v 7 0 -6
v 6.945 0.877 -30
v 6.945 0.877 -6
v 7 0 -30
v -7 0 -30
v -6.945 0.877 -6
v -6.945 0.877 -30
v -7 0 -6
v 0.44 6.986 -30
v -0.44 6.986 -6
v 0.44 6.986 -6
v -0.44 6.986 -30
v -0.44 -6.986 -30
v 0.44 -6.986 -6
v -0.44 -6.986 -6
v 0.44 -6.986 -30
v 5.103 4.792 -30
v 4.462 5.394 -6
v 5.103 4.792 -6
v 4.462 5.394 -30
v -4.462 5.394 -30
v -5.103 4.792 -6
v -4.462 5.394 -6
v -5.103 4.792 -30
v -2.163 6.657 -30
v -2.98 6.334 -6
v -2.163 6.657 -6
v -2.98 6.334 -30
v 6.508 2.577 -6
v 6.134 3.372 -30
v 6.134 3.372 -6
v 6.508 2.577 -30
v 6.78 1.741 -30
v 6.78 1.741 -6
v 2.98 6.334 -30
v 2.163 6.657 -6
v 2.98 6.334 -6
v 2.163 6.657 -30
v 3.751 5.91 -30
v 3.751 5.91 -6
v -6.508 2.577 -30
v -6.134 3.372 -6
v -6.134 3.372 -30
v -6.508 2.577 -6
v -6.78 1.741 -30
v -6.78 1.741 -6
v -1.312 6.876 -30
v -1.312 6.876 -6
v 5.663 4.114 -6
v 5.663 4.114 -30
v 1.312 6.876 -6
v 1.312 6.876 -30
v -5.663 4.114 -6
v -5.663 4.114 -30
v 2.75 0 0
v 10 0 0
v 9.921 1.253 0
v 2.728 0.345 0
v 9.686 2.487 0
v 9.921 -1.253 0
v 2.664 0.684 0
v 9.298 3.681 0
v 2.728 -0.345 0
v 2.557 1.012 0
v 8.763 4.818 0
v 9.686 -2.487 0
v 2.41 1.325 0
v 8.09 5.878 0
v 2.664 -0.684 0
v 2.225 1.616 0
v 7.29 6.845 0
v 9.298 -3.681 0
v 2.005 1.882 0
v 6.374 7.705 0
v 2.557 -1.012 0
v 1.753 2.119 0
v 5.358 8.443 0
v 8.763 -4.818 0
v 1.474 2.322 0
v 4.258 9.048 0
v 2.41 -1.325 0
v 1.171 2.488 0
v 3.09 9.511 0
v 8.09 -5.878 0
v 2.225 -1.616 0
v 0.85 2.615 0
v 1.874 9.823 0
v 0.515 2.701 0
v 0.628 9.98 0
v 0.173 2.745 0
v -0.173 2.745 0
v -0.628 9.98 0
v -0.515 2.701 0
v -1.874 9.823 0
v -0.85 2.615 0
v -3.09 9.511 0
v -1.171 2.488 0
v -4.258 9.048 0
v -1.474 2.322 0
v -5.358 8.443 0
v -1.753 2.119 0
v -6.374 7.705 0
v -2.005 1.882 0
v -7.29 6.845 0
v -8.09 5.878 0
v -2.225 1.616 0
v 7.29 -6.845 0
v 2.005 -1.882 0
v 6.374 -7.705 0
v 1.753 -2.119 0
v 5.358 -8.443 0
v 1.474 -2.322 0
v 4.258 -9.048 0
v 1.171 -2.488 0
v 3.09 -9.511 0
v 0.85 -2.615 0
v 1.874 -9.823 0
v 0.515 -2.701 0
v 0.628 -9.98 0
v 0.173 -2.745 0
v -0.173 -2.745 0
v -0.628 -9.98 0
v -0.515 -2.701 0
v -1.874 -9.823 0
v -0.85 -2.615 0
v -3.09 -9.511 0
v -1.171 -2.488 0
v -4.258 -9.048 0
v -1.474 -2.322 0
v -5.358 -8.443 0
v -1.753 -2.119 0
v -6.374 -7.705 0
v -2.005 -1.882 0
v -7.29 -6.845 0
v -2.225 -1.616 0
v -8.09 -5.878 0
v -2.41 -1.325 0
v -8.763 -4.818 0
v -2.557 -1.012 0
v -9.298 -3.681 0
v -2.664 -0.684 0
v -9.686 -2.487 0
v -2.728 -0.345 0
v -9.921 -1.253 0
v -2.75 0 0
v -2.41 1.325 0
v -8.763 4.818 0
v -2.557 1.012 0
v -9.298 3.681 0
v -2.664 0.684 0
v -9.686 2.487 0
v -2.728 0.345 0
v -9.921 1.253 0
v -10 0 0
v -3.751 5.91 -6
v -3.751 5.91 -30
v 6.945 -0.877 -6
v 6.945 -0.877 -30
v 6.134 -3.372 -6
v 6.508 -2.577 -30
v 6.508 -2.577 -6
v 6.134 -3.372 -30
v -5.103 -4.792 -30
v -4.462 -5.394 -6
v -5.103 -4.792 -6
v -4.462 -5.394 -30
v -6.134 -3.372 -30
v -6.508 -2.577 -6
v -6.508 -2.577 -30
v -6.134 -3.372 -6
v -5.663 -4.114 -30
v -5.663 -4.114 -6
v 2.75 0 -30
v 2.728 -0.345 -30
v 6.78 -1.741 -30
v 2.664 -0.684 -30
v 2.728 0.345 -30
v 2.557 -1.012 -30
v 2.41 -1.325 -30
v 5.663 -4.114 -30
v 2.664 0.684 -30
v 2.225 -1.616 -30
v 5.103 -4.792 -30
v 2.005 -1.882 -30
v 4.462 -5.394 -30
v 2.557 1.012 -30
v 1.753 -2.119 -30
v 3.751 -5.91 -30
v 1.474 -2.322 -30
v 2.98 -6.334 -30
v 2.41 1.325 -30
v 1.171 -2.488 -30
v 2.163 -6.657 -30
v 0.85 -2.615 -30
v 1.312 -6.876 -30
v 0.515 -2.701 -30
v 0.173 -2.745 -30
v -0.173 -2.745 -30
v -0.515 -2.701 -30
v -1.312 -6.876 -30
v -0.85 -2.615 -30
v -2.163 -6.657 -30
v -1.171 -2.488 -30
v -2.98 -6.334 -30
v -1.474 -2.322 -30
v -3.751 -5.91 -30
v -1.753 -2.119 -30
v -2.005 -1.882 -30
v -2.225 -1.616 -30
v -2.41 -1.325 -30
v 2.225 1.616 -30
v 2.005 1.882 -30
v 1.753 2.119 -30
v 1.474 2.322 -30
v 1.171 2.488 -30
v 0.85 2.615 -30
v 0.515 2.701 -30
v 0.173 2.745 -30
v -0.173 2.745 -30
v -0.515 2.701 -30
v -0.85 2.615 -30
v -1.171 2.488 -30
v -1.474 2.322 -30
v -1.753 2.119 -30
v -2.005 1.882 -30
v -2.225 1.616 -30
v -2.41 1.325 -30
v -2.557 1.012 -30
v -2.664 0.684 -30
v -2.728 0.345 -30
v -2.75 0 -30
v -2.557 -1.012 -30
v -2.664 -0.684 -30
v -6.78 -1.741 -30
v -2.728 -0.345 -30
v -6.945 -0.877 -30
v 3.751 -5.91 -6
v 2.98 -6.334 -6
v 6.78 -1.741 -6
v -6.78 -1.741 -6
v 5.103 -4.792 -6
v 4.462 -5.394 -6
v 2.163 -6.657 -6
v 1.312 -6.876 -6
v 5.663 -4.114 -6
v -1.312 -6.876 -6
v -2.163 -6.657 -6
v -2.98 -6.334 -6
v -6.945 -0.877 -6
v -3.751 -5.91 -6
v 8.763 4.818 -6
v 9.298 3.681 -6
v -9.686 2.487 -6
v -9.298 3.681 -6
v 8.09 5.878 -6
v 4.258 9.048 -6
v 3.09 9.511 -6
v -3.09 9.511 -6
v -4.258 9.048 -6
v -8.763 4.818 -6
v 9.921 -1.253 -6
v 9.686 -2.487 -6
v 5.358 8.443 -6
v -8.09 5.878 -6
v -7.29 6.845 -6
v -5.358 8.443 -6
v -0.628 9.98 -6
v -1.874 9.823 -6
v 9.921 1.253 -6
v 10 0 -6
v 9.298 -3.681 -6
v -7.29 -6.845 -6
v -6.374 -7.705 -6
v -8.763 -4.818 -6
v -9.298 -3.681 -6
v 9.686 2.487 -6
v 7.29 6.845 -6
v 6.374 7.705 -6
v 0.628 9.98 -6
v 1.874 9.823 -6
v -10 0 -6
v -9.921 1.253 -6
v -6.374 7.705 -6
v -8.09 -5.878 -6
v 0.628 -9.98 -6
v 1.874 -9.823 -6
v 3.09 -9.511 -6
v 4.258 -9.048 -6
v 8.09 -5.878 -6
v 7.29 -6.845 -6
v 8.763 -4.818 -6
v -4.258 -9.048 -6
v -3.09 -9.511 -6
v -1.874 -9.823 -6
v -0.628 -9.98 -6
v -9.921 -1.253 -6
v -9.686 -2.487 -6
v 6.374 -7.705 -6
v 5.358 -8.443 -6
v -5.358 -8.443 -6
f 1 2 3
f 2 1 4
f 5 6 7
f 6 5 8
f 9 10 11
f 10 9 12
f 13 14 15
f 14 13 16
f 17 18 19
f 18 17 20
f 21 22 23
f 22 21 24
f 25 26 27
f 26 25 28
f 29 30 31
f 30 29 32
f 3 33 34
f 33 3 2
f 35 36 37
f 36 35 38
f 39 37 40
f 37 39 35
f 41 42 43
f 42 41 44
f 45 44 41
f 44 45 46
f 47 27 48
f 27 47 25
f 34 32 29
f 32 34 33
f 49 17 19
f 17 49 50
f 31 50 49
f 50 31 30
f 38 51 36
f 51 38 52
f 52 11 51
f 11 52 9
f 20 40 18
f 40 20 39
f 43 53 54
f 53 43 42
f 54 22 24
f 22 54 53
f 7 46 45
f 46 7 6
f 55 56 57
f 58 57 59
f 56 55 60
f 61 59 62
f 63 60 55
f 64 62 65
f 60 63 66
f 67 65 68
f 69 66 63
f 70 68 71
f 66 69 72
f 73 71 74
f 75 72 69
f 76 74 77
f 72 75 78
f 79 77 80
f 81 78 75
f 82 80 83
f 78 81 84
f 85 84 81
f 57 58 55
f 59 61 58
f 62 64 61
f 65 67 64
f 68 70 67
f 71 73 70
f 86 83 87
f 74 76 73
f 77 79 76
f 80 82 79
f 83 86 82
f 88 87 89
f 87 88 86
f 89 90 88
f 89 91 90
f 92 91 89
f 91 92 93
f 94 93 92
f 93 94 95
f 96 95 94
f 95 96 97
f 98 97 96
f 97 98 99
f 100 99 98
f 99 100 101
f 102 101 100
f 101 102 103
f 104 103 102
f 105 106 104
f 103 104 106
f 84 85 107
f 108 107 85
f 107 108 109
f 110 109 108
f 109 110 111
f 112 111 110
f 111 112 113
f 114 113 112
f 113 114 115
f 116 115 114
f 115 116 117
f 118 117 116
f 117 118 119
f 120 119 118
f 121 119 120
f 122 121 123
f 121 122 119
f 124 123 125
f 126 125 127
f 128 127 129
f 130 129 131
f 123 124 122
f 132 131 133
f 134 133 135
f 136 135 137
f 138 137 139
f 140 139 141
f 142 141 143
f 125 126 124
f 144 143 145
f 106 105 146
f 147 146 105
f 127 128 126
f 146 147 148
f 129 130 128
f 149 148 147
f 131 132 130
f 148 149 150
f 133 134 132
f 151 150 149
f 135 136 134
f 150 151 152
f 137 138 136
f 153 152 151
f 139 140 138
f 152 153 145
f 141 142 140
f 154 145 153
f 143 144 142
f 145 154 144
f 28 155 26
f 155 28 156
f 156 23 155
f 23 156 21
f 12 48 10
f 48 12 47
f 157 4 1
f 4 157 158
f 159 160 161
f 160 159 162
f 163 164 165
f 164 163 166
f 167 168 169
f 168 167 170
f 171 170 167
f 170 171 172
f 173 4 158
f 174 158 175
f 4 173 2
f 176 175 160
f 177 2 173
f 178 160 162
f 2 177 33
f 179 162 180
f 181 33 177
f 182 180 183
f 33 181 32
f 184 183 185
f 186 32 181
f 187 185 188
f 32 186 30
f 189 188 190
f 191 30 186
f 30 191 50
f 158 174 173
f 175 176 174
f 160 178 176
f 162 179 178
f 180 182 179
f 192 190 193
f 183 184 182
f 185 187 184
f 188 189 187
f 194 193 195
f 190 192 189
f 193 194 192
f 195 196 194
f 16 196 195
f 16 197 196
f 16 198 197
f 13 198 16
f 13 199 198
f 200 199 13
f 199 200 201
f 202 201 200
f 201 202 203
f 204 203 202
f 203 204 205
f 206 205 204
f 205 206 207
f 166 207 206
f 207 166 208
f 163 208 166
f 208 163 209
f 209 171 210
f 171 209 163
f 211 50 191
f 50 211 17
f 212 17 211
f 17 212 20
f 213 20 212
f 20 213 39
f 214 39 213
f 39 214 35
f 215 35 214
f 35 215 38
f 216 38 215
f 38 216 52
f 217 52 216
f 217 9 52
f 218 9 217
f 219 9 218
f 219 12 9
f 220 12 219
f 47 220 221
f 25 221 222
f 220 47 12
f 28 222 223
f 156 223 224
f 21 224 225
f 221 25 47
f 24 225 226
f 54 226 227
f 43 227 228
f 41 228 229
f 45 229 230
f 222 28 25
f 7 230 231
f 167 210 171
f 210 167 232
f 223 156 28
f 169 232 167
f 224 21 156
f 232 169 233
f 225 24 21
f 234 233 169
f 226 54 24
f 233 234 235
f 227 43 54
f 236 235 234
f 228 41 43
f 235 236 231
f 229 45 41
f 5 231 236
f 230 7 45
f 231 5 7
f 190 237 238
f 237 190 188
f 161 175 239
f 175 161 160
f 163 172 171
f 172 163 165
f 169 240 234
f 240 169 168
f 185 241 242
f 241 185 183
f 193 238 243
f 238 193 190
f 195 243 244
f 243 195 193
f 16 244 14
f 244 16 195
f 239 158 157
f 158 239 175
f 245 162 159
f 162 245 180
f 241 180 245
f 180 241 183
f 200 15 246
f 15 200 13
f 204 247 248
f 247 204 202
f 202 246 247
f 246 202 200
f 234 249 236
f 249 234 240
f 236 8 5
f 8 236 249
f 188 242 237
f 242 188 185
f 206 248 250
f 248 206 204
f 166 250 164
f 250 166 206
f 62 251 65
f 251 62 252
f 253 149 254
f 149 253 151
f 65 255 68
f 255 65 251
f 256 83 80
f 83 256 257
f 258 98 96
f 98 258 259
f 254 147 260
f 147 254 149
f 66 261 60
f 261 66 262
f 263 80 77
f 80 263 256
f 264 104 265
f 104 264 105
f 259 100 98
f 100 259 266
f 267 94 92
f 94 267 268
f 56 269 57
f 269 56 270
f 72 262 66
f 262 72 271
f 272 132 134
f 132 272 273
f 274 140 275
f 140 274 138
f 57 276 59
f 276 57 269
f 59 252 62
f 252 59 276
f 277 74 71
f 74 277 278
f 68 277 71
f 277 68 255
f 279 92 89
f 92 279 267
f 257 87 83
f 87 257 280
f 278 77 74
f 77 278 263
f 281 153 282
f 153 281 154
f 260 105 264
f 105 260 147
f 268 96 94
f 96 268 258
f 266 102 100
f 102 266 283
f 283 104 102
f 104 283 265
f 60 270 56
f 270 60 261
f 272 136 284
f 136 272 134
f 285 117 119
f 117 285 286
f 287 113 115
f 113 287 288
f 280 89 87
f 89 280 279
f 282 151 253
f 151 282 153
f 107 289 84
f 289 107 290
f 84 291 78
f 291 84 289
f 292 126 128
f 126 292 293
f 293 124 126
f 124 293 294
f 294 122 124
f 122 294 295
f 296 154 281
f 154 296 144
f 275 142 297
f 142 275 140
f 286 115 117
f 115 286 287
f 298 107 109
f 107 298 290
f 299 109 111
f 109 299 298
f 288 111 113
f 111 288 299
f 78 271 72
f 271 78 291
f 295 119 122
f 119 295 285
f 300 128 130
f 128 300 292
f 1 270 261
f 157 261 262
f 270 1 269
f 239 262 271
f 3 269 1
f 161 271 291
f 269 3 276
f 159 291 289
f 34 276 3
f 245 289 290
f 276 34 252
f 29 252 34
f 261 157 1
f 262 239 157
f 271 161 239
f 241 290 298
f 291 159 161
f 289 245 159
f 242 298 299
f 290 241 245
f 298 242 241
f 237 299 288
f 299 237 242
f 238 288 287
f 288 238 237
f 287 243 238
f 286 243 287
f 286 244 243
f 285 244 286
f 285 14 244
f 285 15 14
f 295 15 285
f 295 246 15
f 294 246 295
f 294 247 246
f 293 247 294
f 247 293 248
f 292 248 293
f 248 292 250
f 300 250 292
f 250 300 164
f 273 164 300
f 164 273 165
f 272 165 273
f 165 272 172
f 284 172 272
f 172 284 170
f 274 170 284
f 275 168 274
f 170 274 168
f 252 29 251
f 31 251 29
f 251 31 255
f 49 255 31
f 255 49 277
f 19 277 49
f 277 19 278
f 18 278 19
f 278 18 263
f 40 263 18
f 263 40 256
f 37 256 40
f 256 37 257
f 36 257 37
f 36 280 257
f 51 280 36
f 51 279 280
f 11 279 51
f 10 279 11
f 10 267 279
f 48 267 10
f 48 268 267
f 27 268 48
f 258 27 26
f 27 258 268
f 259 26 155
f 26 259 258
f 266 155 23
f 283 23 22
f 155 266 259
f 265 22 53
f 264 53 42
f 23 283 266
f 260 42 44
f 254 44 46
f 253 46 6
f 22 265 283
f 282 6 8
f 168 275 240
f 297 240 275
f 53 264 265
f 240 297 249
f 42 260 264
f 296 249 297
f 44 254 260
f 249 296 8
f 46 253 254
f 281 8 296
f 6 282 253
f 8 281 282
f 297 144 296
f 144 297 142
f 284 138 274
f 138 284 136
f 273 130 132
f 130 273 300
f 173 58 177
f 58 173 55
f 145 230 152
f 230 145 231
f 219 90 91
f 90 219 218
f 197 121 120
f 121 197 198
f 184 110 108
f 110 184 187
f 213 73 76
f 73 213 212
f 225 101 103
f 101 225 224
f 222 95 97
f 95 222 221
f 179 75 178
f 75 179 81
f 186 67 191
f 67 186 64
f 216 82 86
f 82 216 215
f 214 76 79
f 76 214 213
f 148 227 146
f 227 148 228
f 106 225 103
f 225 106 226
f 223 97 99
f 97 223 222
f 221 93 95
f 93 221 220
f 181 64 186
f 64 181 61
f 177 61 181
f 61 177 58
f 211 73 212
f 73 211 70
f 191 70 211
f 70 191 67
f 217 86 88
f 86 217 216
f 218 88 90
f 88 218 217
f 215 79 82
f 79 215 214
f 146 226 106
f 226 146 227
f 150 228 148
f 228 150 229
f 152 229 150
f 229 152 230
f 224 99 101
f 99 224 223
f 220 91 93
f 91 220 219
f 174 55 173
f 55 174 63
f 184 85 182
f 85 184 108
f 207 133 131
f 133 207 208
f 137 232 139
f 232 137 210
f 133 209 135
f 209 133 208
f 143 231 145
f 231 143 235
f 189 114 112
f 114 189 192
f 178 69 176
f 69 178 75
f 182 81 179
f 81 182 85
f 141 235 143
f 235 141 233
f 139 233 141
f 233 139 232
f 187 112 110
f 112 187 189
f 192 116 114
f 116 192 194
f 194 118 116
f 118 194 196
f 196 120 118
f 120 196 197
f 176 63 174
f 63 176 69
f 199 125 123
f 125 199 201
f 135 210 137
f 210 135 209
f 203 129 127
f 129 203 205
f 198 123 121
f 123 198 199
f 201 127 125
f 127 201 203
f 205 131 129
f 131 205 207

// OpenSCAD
$fn = 50;


difference() {
	union() {
		translate(v = [0, 0, -30.0000000000]) {
			cylinder(h = 30, r = 7.0000000000);
		}
		translate(v = [0, 0, -6.0000000000]) {
			cylinder(h = 6, r = 10.0000000000);
		}
	}
	union() {
		#translate(v = [0, 0, -30]) {
			cylinder(h = 30, r = 2.7500000000);
		}
	}
}
